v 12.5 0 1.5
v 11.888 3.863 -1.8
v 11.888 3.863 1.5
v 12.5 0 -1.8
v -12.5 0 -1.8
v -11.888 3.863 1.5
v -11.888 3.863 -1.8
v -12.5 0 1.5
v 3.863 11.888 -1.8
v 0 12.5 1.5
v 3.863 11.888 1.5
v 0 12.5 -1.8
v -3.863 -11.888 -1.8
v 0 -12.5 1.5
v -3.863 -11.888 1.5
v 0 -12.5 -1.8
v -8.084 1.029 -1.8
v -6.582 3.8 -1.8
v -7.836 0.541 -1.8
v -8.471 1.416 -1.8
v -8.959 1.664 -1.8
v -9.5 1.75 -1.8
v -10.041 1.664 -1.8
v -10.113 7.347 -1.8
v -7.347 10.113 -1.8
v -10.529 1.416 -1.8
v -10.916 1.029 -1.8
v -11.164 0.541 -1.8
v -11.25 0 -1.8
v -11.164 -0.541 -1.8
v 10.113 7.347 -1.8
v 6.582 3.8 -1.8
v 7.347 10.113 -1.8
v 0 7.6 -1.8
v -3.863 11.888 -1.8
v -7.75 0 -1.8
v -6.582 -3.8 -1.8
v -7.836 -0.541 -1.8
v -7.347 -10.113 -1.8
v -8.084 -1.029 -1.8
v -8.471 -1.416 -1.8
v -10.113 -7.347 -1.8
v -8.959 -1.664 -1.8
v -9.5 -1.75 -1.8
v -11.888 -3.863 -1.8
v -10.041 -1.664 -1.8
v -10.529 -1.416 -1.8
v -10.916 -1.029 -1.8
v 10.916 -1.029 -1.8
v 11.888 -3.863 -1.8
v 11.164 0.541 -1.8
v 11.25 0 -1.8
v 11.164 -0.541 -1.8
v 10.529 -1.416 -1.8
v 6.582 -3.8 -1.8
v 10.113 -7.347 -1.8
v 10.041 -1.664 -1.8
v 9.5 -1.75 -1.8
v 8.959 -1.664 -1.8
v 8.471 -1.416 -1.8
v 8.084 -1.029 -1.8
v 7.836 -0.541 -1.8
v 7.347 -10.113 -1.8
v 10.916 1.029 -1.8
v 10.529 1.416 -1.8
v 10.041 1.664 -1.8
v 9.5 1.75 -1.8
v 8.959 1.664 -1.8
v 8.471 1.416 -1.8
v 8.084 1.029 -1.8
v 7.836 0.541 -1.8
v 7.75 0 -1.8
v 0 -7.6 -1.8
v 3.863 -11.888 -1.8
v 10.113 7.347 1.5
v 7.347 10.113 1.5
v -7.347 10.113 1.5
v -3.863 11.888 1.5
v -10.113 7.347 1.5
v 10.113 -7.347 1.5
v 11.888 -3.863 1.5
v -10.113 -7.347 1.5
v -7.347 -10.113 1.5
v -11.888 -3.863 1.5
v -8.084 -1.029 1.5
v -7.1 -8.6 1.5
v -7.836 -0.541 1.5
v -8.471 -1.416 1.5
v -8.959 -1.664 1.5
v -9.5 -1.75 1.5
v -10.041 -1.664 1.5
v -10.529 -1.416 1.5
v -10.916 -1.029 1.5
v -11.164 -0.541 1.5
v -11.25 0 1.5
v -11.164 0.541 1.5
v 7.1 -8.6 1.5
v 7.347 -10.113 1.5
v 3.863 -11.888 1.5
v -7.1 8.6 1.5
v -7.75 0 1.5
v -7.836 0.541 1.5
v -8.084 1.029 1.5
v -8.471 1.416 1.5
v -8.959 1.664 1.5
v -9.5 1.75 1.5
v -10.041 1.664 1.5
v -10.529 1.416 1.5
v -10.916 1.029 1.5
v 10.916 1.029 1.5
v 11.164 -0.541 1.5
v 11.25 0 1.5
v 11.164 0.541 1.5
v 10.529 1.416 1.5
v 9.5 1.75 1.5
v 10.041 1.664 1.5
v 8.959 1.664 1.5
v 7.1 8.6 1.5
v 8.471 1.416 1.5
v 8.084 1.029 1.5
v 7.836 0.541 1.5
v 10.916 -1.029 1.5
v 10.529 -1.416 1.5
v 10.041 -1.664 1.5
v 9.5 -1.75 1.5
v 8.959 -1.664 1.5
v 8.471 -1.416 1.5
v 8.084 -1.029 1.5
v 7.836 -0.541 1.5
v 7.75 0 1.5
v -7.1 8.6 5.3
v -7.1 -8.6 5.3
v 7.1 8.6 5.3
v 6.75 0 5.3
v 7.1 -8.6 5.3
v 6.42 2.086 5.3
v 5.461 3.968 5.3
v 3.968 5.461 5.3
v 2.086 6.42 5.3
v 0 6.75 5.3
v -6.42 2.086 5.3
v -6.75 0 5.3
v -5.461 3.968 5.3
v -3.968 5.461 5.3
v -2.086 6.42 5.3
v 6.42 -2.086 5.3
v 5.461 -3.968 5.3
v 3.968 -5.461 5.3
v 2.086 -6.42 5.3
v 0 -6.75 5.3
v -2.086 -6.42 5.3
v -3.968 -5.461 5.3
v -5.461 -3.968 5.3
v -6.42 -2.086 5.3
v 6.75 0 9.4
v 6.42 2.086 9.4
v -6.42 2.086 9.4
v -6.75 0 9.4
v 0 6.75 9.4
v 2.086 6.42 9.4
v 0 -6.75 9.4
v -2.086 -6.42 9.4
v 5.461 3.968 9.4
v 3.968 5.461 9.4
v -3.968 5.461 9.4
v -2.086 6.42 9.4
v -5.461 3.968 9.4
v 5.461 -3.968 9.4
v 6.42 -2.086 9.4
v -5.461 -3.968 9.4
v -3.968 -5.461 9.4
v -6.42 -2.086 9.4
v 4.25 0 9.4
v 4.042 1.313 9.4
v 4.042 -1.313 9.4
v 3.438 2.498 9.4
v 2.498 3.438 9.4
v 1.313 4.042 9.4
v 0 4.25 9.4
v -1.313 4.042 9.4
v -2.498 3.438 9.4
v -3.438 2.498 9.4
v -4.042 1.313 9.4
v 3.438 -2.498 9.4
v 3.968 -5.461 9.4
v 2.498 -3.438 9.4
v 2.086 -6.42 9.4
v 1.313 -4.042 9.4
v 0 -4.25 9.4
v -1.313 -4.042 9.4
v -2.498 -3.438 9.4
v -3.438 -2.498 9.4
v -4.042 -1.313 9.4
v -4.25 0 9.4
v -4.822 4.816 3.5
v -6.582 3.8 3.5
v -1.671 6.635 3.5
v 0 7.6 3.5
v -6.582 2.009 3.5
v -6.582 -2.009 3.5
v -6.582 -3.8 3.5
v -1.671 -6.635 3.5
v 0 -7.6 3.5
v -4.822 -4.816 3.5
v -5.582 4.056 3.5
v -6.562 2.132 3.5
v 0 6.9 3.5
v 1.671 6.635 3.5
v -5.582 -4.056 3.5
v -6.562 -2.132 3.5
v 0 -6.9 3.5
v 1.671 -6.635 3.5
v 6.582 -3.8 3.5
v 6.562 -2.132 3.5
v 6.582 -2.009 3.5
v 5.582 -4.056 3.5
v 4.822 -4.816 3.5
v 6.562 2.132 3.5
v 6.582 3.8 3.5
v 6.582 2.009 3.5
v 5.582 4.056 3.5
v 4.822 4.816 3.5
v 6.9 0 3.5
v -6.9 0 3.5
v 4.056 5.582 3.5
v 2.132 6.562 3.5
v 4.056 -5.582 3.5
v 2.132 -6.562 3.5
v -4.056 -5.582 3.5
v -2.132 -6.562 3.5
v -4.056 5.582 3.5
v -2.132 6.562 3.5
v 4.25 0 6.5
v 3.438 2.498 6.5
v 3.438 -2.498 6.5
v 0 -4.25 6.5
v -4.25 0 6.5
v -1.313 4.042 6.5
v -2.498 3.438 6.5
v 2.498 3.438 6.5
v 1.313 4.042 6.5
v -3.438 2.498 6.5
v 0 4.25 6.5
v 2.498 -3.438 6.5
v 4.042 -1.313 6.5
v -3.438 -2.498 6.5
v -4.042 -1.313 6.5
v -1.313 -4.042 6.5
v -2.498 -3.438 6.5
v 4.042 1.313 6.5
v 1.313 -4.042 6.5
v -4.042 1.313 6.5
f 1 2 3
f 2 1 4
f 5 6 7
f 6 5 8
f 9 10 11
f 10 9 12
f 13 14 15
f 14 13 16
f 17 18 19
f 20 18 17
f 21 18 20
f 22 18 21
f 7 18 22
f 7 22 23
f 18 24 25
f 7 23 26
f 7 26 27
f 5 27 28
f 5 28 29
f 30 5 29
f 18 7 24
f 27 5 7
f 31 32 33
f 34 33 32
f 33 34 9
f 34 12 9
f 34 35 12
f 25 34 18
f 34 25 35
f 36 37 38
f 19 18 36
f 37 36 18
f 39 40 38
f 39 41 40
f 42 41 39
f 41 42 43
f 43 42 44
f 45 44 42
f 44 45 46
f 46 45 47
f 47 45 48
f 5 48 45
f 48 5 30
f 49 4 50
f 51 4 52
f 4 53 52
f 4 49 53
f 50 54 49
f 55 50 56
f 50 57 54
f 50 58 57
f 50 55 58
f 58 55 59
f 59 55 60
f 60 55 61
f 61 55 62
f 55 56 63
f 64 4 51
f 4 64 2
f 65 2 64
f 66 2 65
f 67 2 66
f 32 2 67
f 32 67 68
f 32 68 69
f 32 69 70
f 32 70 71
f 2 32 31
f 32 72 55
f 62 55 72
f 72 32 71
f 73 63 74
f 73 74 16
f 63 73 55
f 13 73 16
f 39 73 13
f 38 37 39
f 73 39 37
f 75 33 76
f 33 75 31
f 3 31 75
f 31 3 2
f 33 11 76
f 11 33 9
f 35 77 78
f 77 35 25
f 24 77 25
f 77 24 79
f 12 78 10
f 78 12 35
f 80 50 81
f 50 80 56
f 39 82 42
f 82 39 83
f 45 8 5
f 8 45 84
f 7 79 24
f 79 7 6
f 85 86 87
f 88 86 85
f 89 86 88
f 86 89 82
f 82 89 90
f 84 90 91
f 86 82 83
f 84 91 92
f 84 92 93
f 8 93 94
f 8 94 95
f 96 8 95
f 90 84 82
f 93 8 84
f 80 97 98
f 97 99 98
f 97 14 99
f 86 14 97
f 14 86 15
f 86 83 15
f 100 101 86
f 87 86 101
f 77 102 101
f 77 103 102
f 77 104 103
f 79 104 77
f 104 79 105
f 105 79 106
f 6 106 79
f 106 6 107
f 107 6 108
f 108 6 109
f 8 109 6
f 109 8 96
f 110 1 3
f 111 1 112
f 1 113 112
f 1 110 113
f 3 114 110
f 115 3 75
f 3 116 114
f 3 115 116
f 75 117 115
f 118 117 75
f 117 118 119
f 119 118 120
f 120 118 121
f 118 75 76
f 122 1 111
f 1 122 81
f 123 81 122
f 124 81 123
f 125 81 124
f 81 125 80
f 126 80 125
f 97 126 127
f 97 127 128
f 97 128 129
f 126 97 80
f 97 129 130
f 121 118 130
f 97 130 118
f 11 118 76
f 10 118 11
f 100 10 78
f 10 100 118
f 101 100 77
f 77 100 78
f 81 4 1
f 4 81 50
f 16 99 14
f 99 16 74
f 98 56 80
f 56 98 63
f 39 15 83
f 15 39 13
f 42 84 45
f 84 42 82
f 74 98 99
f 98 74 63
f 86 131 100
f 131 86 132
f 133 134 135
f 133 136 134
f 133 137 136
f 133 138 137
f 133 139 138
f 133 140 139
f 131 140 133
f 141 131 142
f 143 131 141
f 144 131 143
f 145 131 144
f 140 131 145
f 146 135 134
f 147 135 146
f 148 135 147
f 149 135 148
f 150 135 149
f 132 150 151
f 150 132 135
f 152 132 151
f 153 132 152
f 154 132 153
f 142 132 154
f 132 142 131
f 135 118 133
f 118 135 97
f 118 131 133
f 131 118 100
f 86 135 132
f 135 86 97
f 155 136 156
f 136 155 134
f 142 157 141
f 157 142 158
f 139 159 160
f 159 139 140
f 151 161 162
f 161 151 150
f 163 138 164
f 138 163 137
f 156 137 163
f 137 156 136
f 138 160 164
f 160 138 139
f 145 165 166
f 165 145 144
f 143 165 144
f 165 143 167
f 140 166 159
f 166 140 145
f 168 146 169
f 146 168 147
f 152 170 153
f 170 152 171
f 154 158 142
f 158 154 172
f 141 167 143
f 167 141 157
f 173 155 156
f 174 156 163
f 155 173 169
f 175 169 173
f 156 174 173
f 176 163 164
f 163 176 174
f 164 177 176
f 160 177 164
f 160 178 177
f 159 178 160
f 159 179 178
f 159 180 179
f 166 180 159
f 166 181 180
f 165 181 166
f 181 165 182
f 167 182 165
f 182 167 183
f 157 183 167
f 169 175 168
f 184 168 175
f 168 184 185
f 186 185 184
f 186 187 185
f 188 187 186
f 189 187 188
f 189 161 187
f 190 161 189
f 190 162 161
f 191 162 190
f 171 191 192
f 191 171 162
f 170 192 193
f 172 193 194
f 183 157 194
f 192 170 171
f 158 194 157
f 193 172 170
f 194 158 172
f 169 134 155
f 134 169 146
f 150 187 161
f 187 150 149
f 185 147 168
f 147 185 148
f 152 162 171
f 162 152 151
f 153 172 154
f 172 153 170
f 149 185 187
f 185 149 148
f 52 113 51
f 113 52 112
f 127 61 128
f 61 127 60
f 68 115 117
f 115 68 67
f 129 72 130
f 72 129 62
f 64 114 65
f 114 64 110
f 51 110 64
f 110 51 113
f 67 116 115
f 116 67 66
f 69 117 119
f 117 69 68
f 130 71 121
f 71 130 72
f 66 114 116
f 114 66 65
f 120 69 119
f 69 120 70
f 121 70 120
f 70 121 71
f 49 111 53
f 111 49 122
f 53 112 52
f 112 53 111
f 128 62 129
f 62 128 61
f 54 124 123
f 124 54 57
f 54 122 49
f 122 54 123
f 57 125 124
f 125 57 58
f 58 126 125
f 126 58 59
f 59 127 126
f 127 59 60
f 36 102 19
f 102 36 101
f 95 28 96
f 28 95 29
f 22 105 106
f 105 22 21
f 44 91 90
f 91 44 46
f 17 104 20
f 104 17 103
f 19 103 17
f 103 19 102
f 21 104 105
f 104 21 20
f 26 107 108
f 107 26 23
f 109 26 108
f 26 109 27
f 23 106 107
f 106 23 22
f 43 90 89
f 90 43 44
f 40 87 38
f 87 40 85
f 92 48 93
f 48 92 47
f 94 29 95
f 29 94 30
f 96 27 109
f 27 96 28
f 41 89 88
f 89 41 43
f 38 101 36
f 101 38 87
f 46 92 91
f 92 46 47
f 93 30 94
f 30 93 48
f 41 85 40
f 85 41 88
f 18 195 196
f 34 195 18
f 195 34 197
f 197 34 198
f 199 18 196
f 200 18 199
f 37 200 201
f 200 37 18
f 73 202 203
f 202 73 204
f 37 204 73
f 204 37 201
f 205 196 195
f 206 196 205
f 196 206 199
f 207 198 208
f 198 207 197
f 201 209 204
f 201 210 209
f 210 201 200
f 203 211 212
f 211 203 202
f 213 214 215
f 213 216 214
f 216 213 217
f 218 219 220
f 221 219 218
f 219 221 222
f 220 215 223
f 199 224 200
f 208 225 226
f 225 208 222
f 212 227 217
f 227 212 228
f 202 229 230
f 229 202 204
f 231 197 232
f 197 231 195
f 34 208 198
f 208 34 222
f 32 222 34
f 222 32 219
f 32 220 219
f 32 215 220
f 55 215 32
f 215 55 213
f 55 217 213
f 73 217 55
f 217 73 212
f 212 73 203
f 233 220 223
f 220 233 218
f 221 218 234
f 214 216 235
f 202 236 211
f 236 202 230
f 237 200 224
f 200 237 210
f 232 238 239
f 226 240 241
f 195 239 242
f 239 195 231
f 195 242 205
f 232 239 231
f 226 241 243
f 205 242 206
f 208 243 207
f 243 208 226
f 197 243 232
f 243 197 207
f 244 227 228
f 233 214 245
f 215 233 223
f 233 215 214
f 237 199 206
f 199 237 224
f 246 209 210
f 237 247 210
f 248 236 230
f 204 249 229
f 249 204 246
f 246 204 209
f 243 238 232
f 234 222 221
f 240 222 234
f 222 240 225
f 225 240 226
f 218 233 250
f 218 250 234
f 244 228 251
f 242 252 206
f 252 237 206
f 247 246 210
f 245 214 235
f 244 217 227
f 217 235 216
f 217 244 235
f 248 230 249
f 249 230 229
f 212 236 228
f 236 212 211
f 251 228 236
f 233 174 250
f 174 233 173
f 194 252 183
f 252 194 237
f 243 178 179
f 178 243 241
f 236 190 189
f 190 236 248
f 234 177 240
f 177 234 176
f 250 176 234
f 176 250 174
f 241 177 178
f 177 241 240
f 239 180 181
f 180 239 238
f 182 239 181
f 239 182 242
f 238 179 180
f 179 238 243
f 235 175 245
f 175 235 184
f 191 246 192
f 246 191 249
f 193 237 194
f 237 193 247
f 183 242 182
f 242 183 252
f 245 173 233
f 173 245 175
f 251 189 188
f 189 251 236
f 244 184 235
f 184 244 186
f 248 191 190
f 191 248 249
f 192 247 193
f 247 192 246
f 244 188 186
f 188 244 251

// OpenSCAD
// Backported by Paul Arden <paul@arden.io> from Thomas Sanladerer's design.

render_fn = 20;

// All M8 values refer to M8 Nut dimension
m8_outer = 15.2;
m8_inner=8.5;
m8_height = 5.3;

max_height = m8_height + 0.9;


top_thick = 5;

module m3_holes(d,r,h){
     for (i = [0:6]) {
        translate([r*cos(i*180),r*sin(i*180),0]) cylinder(d=d,h=h,$fn=render_fn);
    }    
}

translate([0,0,-1.8]) 
difference(){
    union() {
        //base
        cylinder(d=25, h=3.3, $fn=render_fn);
        //outer wall for m8 nut
        translate([0,0, 4])
        cube([m8_outer-1, m8_outer+2, max_height], center=true);
        
        // top wall
        translate([0, 0, max_height])
        
        cylinder(d=m8_inner+5, h=top_thick, $fn=render_fn);
        }
     
    rotate([0,0,90])
    cylinder(d1=m8_outer, d2=m8_outer, h=m8_height,$fn=6);
    
    //cone-shaped hole in top wall
    translate([0, 0, m8_height])
    cylinder(d1=m8_outer-1.4, d2=m8_inner, h=top_thick -2, $fn=render_fn);
    
    //round hole in top wall
    translate([0, 0, max_height+2])
    cylinder(d1=m8_inner, d2=m8_inner, h=top_thick -2, $fn=render_fn);
       
    
    m3_holes(3.5,9.5,4);
    
    translate([0,0,3.3-1.8])
    rotate([0,0,90])
    m3_holes(1,8.937/2,4);
    cylinder(d1=6.5,d2=5.5,h=0.5,$fn=render_fn);
}
